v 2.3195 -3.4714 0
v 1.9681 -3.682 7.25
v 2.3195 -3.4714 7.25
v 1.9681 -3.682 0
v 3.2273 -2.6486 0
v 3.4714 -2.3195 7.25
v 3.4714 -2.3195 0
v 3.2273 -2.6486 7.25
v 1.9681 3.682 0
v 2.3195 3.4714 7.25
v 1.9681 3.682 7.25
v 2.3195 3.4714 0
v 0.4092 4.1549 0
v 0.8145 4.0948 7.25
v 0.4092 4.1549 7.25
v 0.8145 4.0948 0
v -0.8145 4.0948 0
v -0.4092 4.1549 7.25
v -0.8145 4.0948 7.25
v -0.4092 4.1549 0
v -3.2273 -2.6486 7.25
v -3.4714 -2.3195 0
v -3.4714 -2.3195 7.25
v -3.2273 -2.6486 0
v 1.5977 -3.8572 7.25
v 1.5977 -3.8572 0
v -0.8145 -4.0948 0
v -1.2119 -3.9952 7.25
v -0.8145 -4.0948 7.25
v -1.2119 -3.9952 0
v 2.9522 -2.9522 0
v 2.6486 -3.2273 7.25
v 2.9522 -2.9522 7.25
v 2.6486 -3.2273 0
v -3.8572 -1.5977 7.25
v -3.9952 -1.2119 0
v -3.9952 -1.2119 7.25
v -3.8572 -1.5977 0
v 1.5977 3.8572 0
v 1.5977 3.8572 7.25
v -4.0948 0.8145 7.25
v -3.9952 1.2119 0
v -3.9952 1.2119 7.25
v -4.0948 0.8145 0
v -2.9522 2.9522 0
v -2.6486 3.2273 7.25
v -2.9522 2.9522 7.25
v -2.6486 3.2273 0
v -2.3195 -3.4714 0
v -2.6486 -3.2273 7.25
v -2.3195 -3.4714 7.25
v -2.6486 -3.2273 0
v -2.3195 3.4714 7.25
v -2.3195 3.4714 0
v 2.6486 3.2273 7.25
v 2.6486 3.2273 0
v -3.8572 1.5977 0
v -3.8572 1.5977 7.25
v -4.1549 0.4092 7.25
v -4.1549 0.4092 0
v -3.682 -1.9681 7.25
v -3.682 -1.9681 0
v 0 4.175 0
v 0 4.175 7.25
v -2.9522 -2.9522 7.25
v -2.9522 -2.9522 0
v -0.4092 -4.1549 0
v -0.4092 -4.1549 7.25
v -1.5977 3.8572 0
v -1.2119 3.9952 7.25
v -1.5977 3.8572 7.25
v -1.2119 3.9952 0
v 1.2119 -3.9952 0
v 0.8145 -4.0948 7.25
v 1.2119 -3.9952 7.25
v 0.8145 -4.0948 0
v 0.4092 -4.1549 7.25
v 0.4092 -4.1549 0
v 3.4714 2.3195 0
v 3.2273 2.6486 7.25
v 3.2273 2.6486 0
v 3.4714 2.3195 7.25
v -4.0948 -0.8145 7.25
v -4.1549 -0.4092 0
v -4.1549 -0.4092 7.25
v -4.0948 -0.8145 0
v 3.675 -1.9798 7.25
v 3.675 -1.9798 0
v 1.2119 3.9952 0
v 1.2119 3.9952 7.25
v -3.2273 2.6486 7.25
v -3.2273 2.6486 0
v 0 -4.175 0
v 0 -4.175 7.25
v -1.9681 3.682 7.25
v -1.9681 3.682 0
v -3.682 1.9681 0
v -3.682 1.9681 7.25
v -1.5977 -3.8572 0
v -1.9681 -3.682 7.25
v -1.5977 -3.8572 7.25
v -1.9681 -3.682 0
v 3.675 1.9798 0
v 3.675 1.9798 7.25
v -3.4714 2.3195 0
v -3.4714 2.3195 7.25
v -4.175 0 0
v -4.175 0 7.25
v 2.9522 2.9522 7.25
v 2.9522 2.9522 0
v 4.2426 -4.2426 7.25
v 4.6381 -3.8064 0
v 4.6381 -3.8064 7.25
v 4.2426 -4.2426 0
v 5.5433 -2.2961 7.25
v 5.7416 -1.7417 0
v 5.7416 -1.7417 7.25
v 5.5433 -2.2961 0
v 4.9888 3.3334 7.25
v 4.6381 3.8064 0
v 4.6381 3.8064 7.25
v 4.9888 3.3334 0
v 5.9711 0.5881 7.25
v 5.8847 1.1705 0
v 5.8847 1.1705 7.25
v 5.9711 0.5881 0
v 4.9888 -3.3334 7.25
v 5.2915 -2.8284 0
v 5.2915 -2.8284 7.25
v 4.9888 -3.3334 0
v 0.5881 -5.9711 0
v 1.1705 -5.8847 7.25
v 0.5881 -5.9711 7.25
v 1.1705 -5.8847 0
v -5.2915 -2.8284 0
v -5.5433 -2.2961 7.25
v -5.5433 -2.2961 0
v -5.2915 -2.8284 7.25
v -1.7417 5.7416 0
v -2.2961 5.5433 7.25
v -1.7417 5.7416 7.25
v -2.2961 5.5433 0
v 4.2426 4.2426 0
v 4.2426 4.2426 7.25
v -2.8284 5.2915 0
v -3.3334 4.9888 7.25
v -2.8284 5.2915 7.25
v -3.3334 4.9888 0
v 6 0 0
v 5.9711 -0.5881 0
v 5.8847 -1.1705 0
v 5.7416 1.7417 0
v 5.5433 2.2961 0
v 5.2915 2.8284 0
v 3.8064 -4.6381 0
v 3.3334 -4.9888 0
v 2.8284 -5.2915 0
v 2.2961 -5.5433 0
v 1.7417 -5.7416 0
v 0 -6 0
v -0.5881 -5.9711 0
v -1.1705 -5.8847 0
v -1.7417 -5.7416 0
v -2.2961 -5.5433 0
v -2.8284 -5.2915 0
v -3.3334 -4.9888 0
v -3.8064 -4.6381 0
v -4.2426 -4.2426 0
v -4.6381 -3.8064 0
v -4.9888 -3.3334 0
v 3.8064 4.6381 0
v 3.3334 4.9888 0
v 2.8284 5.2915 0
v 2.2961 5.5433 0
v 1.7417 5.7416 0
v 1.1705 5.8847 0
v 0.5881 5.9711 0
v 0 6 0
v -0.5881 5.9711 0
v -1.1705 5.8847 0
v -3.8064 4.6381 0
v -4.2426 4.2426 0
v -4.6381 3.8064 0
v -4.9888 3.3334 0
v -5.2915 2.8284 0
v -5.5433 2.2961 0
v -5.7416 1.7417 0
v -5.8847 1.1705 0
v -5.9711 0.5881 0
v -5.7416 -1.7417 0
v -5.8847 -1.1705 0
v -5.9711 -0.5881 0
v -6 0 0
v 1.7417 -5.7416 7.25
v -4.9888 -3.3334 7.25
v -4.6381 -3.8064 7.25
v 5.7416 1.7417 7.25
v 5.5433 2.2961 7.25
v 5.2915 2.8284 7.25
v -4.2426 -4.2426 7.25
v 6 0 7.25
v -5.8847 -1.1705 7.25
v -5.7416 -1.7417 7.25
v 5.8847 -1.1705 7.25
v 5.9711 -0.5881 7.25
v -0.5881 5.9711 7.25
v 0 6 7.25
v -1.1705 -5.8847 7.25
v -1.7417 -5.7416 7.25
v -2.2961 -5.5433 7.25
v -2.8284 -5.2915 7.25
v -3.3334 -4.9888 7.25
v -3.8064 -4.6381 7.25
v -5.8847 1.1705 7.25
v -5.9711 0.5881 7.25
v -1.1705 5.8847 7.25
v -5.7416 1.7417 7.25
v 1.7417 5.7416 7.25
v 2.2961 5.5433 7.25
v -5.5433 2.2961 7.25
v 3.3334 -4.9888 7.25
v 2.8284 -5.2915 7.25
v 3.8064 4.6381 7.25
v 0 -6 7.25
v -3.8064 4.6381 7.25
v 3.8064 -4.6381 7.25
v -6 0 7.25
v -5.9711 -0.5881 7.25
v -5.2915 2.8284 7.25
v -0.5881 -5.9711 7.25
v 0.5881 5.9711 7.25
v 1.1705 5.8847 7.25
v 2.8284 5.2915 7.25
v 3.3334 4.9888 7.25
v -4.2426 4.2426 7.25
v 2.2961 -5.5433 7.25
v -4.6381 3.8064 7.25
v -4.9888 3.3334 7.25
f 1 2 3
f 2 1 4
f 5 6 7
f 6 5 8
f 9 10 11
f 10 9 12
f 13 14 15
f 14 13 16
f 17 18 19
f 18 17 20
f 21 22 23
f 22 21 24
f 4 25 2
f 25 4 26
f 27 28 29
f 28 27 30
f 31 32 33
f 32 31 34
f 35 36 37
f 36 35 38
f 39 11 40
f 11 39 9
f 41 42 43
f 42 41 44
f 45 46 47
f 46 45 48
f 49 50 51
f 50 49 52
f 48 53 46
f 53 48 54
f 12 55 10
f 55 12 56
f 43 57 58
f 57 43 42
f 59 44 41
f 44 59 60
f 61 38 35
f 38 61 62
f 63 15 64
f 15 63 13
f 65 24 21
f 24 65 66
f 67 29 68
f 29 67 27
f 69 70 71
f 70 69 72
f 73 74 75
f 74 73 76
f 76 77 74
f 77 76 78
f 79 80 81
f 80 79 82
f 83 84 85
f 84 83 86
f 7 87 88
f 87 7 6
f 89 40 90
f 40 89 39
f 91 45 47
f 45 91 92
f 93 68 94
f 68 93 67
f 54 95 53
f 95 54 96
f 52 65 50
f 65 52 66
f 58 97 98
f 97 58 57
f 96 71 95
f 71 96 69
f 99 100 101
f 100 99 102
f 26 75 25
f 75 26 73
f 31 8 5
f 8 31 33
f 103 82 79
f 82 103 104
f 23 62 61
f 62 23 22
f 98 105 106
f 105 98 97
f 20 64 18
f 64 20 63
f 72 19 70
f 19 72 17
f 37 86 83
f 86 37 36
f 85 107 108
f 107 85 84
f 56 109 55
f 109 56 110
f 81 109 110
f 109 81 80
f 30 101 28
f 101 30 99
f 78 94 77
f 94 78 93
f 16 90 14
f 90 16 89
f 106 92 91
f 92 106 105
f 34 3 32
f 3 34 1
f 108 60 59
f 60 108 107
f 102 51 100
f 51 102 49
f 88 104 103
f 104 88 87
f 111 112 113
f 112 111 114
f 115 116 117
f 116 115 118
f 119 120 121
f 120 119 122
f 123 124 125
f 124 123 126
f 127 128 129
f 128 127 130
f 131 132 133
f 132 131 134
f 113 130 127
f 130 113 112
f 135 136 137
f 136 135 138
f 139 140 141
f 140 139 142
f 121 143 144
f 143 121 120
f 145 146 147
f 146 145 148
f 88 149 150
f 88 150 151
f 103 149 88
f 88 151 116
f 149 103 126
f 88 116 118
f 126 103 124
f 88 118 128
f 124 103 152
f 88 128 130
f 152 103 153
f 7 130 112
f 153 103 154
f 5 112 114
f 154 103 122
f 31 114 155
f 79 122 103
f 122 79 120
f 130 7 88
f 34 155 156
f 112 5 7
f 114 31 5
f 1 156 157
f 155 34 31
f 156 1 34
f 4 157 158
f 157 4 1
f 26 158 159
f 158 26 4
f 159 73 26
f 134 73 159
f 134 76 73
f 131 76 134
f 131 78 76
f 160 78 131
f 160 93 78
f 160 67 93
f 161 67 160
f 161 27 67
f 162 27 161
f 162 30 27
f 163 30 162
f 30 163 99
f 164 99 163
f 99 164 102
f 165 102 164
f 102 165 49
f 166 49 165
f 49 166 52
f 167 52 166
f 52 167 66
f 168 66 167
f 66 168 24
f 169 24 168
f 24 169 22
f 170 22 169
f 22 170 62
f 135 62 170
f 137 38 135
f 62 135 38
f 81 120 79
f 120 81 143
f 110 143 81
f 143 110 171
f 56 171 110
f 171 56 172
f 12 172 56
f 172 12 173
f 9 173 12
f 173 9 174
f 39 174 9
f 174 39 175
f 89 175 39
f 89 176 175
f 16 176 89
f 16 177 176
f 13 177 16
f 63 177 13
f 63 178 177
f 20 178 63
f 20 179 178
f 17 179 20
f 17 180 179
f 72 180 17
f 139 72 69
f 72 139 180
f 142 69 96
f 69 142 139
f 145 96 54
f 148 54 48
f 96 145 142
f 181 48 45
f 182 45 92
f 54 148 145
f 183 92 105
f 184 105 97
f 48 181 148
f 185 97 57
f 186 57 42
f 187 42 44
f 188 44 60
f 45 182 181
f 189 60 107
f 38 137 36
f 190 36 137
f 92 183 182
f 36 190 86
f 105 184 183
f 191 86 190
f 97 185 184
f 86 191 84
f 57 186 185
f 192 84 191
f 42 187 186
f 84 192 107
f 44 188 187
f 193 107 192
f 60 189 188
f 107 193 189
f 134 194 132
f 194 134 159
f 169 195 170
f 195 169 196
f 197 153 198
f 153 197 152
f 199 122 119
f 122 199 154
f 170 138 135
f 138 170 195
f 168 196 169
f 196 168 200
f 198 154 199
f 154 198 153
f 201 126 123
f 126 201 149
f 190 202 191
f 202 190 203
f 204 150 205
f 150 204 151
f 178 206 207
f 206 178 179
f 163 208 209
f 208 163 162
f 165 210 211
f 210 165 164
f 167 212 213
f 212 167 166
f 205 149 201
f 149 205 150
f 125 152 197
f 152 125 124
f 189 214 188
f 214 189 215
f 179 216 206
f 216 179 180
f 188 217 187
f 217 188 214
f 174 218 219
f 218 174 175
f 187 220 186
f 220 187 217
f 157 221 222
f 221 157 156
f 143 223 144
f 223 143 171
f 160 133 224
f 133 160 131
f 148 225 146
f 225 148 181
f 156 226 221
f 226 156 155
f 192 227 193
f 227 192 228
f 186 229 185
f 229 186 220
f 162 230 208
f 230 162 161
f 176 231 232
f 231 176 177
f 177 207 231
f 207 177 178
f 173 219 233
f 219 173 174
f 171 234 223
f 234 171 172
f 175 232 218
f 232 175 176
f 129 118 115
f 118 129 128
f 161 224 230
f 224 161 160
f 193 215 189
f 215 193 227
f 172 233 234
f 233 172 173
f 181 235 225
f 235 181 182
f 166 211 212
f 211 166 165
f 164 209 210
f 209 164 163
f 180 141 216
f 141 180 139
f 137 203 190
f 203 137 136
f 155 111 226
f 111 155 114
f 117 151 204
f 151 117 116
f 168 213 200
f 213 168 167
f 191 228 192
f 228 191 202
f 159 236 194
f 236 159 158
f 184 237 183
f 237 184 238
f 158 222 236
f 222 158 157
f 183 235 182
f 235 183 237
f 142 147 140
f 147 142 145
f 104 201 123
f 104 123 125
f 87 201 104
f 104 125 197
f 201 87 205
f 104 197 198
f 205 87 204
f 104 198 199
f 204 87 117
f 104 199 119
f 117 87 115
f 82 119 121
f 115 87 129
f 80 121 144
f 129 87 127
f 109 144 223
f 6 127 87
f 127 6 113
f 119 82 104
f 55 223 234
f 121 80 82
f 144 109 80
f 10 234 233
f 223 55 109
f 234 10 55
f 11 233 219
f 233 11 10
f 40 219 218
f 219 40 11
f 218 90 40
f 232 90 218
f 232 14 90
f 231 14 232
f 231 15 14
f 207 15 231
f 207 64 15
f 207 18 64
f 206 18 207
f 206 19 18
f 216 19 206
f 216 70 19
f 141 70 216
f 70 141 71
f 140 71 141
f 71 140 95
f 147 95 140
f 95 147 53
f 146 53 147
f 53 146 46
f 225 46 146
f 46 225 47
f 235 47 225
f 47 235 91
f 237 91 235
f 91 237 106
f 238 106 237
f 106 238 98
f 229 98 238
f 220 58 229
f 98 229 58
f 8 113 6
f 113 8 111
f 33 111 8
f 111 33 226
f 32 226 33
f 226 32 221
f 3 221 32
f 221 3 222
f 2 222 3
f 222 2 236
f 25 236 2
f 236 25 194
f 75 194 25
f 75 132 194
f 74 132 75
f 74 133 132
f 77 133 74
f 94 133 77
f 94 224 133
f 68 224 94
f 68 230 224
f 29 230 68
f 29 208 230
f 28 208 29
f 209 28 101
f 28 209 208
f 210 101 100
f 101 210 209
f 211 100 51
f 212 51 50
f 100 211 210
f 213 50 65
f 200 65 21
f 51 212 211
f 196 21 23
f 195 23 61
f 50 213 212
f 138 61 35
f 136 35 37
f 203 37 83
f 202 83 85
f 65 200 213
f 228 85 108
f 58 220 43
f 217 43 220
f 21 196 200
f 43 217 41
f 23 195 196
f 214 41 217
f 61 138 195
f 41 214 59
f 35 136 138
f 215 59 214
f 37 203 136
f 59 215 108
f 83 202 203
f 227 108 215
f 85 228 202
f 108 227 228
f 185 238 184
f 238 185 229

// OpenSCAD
// Gen-CP — gap sleeve: rigid spacer on the shaft BETWEEN the two rotor carriers (passes through the stator
// hole). Length = m2m, so it sets the magnet gap and carries the full magnet pull. Print x1, upright.
include <parameters.scad>;
$fn = 64;
// D-flat keyed bore: flat faces +X (angle 0 = magnet pocket 0 = index notch)
module dflat_bore(h) {
    intersection() {
        cylinder(d=shaft_bore, h=h);
        translate([-shaft_bore, -shaft_bore, 0]) cube([shaft_bore + dflat_x, 2*shaft_bore, h]);
    }
}

difference() {
    cylinder(d=sleeve_od, h=m2m);
    translate([0, 0, -0.1]) dflat_bore(m2m + 0.2);
}
